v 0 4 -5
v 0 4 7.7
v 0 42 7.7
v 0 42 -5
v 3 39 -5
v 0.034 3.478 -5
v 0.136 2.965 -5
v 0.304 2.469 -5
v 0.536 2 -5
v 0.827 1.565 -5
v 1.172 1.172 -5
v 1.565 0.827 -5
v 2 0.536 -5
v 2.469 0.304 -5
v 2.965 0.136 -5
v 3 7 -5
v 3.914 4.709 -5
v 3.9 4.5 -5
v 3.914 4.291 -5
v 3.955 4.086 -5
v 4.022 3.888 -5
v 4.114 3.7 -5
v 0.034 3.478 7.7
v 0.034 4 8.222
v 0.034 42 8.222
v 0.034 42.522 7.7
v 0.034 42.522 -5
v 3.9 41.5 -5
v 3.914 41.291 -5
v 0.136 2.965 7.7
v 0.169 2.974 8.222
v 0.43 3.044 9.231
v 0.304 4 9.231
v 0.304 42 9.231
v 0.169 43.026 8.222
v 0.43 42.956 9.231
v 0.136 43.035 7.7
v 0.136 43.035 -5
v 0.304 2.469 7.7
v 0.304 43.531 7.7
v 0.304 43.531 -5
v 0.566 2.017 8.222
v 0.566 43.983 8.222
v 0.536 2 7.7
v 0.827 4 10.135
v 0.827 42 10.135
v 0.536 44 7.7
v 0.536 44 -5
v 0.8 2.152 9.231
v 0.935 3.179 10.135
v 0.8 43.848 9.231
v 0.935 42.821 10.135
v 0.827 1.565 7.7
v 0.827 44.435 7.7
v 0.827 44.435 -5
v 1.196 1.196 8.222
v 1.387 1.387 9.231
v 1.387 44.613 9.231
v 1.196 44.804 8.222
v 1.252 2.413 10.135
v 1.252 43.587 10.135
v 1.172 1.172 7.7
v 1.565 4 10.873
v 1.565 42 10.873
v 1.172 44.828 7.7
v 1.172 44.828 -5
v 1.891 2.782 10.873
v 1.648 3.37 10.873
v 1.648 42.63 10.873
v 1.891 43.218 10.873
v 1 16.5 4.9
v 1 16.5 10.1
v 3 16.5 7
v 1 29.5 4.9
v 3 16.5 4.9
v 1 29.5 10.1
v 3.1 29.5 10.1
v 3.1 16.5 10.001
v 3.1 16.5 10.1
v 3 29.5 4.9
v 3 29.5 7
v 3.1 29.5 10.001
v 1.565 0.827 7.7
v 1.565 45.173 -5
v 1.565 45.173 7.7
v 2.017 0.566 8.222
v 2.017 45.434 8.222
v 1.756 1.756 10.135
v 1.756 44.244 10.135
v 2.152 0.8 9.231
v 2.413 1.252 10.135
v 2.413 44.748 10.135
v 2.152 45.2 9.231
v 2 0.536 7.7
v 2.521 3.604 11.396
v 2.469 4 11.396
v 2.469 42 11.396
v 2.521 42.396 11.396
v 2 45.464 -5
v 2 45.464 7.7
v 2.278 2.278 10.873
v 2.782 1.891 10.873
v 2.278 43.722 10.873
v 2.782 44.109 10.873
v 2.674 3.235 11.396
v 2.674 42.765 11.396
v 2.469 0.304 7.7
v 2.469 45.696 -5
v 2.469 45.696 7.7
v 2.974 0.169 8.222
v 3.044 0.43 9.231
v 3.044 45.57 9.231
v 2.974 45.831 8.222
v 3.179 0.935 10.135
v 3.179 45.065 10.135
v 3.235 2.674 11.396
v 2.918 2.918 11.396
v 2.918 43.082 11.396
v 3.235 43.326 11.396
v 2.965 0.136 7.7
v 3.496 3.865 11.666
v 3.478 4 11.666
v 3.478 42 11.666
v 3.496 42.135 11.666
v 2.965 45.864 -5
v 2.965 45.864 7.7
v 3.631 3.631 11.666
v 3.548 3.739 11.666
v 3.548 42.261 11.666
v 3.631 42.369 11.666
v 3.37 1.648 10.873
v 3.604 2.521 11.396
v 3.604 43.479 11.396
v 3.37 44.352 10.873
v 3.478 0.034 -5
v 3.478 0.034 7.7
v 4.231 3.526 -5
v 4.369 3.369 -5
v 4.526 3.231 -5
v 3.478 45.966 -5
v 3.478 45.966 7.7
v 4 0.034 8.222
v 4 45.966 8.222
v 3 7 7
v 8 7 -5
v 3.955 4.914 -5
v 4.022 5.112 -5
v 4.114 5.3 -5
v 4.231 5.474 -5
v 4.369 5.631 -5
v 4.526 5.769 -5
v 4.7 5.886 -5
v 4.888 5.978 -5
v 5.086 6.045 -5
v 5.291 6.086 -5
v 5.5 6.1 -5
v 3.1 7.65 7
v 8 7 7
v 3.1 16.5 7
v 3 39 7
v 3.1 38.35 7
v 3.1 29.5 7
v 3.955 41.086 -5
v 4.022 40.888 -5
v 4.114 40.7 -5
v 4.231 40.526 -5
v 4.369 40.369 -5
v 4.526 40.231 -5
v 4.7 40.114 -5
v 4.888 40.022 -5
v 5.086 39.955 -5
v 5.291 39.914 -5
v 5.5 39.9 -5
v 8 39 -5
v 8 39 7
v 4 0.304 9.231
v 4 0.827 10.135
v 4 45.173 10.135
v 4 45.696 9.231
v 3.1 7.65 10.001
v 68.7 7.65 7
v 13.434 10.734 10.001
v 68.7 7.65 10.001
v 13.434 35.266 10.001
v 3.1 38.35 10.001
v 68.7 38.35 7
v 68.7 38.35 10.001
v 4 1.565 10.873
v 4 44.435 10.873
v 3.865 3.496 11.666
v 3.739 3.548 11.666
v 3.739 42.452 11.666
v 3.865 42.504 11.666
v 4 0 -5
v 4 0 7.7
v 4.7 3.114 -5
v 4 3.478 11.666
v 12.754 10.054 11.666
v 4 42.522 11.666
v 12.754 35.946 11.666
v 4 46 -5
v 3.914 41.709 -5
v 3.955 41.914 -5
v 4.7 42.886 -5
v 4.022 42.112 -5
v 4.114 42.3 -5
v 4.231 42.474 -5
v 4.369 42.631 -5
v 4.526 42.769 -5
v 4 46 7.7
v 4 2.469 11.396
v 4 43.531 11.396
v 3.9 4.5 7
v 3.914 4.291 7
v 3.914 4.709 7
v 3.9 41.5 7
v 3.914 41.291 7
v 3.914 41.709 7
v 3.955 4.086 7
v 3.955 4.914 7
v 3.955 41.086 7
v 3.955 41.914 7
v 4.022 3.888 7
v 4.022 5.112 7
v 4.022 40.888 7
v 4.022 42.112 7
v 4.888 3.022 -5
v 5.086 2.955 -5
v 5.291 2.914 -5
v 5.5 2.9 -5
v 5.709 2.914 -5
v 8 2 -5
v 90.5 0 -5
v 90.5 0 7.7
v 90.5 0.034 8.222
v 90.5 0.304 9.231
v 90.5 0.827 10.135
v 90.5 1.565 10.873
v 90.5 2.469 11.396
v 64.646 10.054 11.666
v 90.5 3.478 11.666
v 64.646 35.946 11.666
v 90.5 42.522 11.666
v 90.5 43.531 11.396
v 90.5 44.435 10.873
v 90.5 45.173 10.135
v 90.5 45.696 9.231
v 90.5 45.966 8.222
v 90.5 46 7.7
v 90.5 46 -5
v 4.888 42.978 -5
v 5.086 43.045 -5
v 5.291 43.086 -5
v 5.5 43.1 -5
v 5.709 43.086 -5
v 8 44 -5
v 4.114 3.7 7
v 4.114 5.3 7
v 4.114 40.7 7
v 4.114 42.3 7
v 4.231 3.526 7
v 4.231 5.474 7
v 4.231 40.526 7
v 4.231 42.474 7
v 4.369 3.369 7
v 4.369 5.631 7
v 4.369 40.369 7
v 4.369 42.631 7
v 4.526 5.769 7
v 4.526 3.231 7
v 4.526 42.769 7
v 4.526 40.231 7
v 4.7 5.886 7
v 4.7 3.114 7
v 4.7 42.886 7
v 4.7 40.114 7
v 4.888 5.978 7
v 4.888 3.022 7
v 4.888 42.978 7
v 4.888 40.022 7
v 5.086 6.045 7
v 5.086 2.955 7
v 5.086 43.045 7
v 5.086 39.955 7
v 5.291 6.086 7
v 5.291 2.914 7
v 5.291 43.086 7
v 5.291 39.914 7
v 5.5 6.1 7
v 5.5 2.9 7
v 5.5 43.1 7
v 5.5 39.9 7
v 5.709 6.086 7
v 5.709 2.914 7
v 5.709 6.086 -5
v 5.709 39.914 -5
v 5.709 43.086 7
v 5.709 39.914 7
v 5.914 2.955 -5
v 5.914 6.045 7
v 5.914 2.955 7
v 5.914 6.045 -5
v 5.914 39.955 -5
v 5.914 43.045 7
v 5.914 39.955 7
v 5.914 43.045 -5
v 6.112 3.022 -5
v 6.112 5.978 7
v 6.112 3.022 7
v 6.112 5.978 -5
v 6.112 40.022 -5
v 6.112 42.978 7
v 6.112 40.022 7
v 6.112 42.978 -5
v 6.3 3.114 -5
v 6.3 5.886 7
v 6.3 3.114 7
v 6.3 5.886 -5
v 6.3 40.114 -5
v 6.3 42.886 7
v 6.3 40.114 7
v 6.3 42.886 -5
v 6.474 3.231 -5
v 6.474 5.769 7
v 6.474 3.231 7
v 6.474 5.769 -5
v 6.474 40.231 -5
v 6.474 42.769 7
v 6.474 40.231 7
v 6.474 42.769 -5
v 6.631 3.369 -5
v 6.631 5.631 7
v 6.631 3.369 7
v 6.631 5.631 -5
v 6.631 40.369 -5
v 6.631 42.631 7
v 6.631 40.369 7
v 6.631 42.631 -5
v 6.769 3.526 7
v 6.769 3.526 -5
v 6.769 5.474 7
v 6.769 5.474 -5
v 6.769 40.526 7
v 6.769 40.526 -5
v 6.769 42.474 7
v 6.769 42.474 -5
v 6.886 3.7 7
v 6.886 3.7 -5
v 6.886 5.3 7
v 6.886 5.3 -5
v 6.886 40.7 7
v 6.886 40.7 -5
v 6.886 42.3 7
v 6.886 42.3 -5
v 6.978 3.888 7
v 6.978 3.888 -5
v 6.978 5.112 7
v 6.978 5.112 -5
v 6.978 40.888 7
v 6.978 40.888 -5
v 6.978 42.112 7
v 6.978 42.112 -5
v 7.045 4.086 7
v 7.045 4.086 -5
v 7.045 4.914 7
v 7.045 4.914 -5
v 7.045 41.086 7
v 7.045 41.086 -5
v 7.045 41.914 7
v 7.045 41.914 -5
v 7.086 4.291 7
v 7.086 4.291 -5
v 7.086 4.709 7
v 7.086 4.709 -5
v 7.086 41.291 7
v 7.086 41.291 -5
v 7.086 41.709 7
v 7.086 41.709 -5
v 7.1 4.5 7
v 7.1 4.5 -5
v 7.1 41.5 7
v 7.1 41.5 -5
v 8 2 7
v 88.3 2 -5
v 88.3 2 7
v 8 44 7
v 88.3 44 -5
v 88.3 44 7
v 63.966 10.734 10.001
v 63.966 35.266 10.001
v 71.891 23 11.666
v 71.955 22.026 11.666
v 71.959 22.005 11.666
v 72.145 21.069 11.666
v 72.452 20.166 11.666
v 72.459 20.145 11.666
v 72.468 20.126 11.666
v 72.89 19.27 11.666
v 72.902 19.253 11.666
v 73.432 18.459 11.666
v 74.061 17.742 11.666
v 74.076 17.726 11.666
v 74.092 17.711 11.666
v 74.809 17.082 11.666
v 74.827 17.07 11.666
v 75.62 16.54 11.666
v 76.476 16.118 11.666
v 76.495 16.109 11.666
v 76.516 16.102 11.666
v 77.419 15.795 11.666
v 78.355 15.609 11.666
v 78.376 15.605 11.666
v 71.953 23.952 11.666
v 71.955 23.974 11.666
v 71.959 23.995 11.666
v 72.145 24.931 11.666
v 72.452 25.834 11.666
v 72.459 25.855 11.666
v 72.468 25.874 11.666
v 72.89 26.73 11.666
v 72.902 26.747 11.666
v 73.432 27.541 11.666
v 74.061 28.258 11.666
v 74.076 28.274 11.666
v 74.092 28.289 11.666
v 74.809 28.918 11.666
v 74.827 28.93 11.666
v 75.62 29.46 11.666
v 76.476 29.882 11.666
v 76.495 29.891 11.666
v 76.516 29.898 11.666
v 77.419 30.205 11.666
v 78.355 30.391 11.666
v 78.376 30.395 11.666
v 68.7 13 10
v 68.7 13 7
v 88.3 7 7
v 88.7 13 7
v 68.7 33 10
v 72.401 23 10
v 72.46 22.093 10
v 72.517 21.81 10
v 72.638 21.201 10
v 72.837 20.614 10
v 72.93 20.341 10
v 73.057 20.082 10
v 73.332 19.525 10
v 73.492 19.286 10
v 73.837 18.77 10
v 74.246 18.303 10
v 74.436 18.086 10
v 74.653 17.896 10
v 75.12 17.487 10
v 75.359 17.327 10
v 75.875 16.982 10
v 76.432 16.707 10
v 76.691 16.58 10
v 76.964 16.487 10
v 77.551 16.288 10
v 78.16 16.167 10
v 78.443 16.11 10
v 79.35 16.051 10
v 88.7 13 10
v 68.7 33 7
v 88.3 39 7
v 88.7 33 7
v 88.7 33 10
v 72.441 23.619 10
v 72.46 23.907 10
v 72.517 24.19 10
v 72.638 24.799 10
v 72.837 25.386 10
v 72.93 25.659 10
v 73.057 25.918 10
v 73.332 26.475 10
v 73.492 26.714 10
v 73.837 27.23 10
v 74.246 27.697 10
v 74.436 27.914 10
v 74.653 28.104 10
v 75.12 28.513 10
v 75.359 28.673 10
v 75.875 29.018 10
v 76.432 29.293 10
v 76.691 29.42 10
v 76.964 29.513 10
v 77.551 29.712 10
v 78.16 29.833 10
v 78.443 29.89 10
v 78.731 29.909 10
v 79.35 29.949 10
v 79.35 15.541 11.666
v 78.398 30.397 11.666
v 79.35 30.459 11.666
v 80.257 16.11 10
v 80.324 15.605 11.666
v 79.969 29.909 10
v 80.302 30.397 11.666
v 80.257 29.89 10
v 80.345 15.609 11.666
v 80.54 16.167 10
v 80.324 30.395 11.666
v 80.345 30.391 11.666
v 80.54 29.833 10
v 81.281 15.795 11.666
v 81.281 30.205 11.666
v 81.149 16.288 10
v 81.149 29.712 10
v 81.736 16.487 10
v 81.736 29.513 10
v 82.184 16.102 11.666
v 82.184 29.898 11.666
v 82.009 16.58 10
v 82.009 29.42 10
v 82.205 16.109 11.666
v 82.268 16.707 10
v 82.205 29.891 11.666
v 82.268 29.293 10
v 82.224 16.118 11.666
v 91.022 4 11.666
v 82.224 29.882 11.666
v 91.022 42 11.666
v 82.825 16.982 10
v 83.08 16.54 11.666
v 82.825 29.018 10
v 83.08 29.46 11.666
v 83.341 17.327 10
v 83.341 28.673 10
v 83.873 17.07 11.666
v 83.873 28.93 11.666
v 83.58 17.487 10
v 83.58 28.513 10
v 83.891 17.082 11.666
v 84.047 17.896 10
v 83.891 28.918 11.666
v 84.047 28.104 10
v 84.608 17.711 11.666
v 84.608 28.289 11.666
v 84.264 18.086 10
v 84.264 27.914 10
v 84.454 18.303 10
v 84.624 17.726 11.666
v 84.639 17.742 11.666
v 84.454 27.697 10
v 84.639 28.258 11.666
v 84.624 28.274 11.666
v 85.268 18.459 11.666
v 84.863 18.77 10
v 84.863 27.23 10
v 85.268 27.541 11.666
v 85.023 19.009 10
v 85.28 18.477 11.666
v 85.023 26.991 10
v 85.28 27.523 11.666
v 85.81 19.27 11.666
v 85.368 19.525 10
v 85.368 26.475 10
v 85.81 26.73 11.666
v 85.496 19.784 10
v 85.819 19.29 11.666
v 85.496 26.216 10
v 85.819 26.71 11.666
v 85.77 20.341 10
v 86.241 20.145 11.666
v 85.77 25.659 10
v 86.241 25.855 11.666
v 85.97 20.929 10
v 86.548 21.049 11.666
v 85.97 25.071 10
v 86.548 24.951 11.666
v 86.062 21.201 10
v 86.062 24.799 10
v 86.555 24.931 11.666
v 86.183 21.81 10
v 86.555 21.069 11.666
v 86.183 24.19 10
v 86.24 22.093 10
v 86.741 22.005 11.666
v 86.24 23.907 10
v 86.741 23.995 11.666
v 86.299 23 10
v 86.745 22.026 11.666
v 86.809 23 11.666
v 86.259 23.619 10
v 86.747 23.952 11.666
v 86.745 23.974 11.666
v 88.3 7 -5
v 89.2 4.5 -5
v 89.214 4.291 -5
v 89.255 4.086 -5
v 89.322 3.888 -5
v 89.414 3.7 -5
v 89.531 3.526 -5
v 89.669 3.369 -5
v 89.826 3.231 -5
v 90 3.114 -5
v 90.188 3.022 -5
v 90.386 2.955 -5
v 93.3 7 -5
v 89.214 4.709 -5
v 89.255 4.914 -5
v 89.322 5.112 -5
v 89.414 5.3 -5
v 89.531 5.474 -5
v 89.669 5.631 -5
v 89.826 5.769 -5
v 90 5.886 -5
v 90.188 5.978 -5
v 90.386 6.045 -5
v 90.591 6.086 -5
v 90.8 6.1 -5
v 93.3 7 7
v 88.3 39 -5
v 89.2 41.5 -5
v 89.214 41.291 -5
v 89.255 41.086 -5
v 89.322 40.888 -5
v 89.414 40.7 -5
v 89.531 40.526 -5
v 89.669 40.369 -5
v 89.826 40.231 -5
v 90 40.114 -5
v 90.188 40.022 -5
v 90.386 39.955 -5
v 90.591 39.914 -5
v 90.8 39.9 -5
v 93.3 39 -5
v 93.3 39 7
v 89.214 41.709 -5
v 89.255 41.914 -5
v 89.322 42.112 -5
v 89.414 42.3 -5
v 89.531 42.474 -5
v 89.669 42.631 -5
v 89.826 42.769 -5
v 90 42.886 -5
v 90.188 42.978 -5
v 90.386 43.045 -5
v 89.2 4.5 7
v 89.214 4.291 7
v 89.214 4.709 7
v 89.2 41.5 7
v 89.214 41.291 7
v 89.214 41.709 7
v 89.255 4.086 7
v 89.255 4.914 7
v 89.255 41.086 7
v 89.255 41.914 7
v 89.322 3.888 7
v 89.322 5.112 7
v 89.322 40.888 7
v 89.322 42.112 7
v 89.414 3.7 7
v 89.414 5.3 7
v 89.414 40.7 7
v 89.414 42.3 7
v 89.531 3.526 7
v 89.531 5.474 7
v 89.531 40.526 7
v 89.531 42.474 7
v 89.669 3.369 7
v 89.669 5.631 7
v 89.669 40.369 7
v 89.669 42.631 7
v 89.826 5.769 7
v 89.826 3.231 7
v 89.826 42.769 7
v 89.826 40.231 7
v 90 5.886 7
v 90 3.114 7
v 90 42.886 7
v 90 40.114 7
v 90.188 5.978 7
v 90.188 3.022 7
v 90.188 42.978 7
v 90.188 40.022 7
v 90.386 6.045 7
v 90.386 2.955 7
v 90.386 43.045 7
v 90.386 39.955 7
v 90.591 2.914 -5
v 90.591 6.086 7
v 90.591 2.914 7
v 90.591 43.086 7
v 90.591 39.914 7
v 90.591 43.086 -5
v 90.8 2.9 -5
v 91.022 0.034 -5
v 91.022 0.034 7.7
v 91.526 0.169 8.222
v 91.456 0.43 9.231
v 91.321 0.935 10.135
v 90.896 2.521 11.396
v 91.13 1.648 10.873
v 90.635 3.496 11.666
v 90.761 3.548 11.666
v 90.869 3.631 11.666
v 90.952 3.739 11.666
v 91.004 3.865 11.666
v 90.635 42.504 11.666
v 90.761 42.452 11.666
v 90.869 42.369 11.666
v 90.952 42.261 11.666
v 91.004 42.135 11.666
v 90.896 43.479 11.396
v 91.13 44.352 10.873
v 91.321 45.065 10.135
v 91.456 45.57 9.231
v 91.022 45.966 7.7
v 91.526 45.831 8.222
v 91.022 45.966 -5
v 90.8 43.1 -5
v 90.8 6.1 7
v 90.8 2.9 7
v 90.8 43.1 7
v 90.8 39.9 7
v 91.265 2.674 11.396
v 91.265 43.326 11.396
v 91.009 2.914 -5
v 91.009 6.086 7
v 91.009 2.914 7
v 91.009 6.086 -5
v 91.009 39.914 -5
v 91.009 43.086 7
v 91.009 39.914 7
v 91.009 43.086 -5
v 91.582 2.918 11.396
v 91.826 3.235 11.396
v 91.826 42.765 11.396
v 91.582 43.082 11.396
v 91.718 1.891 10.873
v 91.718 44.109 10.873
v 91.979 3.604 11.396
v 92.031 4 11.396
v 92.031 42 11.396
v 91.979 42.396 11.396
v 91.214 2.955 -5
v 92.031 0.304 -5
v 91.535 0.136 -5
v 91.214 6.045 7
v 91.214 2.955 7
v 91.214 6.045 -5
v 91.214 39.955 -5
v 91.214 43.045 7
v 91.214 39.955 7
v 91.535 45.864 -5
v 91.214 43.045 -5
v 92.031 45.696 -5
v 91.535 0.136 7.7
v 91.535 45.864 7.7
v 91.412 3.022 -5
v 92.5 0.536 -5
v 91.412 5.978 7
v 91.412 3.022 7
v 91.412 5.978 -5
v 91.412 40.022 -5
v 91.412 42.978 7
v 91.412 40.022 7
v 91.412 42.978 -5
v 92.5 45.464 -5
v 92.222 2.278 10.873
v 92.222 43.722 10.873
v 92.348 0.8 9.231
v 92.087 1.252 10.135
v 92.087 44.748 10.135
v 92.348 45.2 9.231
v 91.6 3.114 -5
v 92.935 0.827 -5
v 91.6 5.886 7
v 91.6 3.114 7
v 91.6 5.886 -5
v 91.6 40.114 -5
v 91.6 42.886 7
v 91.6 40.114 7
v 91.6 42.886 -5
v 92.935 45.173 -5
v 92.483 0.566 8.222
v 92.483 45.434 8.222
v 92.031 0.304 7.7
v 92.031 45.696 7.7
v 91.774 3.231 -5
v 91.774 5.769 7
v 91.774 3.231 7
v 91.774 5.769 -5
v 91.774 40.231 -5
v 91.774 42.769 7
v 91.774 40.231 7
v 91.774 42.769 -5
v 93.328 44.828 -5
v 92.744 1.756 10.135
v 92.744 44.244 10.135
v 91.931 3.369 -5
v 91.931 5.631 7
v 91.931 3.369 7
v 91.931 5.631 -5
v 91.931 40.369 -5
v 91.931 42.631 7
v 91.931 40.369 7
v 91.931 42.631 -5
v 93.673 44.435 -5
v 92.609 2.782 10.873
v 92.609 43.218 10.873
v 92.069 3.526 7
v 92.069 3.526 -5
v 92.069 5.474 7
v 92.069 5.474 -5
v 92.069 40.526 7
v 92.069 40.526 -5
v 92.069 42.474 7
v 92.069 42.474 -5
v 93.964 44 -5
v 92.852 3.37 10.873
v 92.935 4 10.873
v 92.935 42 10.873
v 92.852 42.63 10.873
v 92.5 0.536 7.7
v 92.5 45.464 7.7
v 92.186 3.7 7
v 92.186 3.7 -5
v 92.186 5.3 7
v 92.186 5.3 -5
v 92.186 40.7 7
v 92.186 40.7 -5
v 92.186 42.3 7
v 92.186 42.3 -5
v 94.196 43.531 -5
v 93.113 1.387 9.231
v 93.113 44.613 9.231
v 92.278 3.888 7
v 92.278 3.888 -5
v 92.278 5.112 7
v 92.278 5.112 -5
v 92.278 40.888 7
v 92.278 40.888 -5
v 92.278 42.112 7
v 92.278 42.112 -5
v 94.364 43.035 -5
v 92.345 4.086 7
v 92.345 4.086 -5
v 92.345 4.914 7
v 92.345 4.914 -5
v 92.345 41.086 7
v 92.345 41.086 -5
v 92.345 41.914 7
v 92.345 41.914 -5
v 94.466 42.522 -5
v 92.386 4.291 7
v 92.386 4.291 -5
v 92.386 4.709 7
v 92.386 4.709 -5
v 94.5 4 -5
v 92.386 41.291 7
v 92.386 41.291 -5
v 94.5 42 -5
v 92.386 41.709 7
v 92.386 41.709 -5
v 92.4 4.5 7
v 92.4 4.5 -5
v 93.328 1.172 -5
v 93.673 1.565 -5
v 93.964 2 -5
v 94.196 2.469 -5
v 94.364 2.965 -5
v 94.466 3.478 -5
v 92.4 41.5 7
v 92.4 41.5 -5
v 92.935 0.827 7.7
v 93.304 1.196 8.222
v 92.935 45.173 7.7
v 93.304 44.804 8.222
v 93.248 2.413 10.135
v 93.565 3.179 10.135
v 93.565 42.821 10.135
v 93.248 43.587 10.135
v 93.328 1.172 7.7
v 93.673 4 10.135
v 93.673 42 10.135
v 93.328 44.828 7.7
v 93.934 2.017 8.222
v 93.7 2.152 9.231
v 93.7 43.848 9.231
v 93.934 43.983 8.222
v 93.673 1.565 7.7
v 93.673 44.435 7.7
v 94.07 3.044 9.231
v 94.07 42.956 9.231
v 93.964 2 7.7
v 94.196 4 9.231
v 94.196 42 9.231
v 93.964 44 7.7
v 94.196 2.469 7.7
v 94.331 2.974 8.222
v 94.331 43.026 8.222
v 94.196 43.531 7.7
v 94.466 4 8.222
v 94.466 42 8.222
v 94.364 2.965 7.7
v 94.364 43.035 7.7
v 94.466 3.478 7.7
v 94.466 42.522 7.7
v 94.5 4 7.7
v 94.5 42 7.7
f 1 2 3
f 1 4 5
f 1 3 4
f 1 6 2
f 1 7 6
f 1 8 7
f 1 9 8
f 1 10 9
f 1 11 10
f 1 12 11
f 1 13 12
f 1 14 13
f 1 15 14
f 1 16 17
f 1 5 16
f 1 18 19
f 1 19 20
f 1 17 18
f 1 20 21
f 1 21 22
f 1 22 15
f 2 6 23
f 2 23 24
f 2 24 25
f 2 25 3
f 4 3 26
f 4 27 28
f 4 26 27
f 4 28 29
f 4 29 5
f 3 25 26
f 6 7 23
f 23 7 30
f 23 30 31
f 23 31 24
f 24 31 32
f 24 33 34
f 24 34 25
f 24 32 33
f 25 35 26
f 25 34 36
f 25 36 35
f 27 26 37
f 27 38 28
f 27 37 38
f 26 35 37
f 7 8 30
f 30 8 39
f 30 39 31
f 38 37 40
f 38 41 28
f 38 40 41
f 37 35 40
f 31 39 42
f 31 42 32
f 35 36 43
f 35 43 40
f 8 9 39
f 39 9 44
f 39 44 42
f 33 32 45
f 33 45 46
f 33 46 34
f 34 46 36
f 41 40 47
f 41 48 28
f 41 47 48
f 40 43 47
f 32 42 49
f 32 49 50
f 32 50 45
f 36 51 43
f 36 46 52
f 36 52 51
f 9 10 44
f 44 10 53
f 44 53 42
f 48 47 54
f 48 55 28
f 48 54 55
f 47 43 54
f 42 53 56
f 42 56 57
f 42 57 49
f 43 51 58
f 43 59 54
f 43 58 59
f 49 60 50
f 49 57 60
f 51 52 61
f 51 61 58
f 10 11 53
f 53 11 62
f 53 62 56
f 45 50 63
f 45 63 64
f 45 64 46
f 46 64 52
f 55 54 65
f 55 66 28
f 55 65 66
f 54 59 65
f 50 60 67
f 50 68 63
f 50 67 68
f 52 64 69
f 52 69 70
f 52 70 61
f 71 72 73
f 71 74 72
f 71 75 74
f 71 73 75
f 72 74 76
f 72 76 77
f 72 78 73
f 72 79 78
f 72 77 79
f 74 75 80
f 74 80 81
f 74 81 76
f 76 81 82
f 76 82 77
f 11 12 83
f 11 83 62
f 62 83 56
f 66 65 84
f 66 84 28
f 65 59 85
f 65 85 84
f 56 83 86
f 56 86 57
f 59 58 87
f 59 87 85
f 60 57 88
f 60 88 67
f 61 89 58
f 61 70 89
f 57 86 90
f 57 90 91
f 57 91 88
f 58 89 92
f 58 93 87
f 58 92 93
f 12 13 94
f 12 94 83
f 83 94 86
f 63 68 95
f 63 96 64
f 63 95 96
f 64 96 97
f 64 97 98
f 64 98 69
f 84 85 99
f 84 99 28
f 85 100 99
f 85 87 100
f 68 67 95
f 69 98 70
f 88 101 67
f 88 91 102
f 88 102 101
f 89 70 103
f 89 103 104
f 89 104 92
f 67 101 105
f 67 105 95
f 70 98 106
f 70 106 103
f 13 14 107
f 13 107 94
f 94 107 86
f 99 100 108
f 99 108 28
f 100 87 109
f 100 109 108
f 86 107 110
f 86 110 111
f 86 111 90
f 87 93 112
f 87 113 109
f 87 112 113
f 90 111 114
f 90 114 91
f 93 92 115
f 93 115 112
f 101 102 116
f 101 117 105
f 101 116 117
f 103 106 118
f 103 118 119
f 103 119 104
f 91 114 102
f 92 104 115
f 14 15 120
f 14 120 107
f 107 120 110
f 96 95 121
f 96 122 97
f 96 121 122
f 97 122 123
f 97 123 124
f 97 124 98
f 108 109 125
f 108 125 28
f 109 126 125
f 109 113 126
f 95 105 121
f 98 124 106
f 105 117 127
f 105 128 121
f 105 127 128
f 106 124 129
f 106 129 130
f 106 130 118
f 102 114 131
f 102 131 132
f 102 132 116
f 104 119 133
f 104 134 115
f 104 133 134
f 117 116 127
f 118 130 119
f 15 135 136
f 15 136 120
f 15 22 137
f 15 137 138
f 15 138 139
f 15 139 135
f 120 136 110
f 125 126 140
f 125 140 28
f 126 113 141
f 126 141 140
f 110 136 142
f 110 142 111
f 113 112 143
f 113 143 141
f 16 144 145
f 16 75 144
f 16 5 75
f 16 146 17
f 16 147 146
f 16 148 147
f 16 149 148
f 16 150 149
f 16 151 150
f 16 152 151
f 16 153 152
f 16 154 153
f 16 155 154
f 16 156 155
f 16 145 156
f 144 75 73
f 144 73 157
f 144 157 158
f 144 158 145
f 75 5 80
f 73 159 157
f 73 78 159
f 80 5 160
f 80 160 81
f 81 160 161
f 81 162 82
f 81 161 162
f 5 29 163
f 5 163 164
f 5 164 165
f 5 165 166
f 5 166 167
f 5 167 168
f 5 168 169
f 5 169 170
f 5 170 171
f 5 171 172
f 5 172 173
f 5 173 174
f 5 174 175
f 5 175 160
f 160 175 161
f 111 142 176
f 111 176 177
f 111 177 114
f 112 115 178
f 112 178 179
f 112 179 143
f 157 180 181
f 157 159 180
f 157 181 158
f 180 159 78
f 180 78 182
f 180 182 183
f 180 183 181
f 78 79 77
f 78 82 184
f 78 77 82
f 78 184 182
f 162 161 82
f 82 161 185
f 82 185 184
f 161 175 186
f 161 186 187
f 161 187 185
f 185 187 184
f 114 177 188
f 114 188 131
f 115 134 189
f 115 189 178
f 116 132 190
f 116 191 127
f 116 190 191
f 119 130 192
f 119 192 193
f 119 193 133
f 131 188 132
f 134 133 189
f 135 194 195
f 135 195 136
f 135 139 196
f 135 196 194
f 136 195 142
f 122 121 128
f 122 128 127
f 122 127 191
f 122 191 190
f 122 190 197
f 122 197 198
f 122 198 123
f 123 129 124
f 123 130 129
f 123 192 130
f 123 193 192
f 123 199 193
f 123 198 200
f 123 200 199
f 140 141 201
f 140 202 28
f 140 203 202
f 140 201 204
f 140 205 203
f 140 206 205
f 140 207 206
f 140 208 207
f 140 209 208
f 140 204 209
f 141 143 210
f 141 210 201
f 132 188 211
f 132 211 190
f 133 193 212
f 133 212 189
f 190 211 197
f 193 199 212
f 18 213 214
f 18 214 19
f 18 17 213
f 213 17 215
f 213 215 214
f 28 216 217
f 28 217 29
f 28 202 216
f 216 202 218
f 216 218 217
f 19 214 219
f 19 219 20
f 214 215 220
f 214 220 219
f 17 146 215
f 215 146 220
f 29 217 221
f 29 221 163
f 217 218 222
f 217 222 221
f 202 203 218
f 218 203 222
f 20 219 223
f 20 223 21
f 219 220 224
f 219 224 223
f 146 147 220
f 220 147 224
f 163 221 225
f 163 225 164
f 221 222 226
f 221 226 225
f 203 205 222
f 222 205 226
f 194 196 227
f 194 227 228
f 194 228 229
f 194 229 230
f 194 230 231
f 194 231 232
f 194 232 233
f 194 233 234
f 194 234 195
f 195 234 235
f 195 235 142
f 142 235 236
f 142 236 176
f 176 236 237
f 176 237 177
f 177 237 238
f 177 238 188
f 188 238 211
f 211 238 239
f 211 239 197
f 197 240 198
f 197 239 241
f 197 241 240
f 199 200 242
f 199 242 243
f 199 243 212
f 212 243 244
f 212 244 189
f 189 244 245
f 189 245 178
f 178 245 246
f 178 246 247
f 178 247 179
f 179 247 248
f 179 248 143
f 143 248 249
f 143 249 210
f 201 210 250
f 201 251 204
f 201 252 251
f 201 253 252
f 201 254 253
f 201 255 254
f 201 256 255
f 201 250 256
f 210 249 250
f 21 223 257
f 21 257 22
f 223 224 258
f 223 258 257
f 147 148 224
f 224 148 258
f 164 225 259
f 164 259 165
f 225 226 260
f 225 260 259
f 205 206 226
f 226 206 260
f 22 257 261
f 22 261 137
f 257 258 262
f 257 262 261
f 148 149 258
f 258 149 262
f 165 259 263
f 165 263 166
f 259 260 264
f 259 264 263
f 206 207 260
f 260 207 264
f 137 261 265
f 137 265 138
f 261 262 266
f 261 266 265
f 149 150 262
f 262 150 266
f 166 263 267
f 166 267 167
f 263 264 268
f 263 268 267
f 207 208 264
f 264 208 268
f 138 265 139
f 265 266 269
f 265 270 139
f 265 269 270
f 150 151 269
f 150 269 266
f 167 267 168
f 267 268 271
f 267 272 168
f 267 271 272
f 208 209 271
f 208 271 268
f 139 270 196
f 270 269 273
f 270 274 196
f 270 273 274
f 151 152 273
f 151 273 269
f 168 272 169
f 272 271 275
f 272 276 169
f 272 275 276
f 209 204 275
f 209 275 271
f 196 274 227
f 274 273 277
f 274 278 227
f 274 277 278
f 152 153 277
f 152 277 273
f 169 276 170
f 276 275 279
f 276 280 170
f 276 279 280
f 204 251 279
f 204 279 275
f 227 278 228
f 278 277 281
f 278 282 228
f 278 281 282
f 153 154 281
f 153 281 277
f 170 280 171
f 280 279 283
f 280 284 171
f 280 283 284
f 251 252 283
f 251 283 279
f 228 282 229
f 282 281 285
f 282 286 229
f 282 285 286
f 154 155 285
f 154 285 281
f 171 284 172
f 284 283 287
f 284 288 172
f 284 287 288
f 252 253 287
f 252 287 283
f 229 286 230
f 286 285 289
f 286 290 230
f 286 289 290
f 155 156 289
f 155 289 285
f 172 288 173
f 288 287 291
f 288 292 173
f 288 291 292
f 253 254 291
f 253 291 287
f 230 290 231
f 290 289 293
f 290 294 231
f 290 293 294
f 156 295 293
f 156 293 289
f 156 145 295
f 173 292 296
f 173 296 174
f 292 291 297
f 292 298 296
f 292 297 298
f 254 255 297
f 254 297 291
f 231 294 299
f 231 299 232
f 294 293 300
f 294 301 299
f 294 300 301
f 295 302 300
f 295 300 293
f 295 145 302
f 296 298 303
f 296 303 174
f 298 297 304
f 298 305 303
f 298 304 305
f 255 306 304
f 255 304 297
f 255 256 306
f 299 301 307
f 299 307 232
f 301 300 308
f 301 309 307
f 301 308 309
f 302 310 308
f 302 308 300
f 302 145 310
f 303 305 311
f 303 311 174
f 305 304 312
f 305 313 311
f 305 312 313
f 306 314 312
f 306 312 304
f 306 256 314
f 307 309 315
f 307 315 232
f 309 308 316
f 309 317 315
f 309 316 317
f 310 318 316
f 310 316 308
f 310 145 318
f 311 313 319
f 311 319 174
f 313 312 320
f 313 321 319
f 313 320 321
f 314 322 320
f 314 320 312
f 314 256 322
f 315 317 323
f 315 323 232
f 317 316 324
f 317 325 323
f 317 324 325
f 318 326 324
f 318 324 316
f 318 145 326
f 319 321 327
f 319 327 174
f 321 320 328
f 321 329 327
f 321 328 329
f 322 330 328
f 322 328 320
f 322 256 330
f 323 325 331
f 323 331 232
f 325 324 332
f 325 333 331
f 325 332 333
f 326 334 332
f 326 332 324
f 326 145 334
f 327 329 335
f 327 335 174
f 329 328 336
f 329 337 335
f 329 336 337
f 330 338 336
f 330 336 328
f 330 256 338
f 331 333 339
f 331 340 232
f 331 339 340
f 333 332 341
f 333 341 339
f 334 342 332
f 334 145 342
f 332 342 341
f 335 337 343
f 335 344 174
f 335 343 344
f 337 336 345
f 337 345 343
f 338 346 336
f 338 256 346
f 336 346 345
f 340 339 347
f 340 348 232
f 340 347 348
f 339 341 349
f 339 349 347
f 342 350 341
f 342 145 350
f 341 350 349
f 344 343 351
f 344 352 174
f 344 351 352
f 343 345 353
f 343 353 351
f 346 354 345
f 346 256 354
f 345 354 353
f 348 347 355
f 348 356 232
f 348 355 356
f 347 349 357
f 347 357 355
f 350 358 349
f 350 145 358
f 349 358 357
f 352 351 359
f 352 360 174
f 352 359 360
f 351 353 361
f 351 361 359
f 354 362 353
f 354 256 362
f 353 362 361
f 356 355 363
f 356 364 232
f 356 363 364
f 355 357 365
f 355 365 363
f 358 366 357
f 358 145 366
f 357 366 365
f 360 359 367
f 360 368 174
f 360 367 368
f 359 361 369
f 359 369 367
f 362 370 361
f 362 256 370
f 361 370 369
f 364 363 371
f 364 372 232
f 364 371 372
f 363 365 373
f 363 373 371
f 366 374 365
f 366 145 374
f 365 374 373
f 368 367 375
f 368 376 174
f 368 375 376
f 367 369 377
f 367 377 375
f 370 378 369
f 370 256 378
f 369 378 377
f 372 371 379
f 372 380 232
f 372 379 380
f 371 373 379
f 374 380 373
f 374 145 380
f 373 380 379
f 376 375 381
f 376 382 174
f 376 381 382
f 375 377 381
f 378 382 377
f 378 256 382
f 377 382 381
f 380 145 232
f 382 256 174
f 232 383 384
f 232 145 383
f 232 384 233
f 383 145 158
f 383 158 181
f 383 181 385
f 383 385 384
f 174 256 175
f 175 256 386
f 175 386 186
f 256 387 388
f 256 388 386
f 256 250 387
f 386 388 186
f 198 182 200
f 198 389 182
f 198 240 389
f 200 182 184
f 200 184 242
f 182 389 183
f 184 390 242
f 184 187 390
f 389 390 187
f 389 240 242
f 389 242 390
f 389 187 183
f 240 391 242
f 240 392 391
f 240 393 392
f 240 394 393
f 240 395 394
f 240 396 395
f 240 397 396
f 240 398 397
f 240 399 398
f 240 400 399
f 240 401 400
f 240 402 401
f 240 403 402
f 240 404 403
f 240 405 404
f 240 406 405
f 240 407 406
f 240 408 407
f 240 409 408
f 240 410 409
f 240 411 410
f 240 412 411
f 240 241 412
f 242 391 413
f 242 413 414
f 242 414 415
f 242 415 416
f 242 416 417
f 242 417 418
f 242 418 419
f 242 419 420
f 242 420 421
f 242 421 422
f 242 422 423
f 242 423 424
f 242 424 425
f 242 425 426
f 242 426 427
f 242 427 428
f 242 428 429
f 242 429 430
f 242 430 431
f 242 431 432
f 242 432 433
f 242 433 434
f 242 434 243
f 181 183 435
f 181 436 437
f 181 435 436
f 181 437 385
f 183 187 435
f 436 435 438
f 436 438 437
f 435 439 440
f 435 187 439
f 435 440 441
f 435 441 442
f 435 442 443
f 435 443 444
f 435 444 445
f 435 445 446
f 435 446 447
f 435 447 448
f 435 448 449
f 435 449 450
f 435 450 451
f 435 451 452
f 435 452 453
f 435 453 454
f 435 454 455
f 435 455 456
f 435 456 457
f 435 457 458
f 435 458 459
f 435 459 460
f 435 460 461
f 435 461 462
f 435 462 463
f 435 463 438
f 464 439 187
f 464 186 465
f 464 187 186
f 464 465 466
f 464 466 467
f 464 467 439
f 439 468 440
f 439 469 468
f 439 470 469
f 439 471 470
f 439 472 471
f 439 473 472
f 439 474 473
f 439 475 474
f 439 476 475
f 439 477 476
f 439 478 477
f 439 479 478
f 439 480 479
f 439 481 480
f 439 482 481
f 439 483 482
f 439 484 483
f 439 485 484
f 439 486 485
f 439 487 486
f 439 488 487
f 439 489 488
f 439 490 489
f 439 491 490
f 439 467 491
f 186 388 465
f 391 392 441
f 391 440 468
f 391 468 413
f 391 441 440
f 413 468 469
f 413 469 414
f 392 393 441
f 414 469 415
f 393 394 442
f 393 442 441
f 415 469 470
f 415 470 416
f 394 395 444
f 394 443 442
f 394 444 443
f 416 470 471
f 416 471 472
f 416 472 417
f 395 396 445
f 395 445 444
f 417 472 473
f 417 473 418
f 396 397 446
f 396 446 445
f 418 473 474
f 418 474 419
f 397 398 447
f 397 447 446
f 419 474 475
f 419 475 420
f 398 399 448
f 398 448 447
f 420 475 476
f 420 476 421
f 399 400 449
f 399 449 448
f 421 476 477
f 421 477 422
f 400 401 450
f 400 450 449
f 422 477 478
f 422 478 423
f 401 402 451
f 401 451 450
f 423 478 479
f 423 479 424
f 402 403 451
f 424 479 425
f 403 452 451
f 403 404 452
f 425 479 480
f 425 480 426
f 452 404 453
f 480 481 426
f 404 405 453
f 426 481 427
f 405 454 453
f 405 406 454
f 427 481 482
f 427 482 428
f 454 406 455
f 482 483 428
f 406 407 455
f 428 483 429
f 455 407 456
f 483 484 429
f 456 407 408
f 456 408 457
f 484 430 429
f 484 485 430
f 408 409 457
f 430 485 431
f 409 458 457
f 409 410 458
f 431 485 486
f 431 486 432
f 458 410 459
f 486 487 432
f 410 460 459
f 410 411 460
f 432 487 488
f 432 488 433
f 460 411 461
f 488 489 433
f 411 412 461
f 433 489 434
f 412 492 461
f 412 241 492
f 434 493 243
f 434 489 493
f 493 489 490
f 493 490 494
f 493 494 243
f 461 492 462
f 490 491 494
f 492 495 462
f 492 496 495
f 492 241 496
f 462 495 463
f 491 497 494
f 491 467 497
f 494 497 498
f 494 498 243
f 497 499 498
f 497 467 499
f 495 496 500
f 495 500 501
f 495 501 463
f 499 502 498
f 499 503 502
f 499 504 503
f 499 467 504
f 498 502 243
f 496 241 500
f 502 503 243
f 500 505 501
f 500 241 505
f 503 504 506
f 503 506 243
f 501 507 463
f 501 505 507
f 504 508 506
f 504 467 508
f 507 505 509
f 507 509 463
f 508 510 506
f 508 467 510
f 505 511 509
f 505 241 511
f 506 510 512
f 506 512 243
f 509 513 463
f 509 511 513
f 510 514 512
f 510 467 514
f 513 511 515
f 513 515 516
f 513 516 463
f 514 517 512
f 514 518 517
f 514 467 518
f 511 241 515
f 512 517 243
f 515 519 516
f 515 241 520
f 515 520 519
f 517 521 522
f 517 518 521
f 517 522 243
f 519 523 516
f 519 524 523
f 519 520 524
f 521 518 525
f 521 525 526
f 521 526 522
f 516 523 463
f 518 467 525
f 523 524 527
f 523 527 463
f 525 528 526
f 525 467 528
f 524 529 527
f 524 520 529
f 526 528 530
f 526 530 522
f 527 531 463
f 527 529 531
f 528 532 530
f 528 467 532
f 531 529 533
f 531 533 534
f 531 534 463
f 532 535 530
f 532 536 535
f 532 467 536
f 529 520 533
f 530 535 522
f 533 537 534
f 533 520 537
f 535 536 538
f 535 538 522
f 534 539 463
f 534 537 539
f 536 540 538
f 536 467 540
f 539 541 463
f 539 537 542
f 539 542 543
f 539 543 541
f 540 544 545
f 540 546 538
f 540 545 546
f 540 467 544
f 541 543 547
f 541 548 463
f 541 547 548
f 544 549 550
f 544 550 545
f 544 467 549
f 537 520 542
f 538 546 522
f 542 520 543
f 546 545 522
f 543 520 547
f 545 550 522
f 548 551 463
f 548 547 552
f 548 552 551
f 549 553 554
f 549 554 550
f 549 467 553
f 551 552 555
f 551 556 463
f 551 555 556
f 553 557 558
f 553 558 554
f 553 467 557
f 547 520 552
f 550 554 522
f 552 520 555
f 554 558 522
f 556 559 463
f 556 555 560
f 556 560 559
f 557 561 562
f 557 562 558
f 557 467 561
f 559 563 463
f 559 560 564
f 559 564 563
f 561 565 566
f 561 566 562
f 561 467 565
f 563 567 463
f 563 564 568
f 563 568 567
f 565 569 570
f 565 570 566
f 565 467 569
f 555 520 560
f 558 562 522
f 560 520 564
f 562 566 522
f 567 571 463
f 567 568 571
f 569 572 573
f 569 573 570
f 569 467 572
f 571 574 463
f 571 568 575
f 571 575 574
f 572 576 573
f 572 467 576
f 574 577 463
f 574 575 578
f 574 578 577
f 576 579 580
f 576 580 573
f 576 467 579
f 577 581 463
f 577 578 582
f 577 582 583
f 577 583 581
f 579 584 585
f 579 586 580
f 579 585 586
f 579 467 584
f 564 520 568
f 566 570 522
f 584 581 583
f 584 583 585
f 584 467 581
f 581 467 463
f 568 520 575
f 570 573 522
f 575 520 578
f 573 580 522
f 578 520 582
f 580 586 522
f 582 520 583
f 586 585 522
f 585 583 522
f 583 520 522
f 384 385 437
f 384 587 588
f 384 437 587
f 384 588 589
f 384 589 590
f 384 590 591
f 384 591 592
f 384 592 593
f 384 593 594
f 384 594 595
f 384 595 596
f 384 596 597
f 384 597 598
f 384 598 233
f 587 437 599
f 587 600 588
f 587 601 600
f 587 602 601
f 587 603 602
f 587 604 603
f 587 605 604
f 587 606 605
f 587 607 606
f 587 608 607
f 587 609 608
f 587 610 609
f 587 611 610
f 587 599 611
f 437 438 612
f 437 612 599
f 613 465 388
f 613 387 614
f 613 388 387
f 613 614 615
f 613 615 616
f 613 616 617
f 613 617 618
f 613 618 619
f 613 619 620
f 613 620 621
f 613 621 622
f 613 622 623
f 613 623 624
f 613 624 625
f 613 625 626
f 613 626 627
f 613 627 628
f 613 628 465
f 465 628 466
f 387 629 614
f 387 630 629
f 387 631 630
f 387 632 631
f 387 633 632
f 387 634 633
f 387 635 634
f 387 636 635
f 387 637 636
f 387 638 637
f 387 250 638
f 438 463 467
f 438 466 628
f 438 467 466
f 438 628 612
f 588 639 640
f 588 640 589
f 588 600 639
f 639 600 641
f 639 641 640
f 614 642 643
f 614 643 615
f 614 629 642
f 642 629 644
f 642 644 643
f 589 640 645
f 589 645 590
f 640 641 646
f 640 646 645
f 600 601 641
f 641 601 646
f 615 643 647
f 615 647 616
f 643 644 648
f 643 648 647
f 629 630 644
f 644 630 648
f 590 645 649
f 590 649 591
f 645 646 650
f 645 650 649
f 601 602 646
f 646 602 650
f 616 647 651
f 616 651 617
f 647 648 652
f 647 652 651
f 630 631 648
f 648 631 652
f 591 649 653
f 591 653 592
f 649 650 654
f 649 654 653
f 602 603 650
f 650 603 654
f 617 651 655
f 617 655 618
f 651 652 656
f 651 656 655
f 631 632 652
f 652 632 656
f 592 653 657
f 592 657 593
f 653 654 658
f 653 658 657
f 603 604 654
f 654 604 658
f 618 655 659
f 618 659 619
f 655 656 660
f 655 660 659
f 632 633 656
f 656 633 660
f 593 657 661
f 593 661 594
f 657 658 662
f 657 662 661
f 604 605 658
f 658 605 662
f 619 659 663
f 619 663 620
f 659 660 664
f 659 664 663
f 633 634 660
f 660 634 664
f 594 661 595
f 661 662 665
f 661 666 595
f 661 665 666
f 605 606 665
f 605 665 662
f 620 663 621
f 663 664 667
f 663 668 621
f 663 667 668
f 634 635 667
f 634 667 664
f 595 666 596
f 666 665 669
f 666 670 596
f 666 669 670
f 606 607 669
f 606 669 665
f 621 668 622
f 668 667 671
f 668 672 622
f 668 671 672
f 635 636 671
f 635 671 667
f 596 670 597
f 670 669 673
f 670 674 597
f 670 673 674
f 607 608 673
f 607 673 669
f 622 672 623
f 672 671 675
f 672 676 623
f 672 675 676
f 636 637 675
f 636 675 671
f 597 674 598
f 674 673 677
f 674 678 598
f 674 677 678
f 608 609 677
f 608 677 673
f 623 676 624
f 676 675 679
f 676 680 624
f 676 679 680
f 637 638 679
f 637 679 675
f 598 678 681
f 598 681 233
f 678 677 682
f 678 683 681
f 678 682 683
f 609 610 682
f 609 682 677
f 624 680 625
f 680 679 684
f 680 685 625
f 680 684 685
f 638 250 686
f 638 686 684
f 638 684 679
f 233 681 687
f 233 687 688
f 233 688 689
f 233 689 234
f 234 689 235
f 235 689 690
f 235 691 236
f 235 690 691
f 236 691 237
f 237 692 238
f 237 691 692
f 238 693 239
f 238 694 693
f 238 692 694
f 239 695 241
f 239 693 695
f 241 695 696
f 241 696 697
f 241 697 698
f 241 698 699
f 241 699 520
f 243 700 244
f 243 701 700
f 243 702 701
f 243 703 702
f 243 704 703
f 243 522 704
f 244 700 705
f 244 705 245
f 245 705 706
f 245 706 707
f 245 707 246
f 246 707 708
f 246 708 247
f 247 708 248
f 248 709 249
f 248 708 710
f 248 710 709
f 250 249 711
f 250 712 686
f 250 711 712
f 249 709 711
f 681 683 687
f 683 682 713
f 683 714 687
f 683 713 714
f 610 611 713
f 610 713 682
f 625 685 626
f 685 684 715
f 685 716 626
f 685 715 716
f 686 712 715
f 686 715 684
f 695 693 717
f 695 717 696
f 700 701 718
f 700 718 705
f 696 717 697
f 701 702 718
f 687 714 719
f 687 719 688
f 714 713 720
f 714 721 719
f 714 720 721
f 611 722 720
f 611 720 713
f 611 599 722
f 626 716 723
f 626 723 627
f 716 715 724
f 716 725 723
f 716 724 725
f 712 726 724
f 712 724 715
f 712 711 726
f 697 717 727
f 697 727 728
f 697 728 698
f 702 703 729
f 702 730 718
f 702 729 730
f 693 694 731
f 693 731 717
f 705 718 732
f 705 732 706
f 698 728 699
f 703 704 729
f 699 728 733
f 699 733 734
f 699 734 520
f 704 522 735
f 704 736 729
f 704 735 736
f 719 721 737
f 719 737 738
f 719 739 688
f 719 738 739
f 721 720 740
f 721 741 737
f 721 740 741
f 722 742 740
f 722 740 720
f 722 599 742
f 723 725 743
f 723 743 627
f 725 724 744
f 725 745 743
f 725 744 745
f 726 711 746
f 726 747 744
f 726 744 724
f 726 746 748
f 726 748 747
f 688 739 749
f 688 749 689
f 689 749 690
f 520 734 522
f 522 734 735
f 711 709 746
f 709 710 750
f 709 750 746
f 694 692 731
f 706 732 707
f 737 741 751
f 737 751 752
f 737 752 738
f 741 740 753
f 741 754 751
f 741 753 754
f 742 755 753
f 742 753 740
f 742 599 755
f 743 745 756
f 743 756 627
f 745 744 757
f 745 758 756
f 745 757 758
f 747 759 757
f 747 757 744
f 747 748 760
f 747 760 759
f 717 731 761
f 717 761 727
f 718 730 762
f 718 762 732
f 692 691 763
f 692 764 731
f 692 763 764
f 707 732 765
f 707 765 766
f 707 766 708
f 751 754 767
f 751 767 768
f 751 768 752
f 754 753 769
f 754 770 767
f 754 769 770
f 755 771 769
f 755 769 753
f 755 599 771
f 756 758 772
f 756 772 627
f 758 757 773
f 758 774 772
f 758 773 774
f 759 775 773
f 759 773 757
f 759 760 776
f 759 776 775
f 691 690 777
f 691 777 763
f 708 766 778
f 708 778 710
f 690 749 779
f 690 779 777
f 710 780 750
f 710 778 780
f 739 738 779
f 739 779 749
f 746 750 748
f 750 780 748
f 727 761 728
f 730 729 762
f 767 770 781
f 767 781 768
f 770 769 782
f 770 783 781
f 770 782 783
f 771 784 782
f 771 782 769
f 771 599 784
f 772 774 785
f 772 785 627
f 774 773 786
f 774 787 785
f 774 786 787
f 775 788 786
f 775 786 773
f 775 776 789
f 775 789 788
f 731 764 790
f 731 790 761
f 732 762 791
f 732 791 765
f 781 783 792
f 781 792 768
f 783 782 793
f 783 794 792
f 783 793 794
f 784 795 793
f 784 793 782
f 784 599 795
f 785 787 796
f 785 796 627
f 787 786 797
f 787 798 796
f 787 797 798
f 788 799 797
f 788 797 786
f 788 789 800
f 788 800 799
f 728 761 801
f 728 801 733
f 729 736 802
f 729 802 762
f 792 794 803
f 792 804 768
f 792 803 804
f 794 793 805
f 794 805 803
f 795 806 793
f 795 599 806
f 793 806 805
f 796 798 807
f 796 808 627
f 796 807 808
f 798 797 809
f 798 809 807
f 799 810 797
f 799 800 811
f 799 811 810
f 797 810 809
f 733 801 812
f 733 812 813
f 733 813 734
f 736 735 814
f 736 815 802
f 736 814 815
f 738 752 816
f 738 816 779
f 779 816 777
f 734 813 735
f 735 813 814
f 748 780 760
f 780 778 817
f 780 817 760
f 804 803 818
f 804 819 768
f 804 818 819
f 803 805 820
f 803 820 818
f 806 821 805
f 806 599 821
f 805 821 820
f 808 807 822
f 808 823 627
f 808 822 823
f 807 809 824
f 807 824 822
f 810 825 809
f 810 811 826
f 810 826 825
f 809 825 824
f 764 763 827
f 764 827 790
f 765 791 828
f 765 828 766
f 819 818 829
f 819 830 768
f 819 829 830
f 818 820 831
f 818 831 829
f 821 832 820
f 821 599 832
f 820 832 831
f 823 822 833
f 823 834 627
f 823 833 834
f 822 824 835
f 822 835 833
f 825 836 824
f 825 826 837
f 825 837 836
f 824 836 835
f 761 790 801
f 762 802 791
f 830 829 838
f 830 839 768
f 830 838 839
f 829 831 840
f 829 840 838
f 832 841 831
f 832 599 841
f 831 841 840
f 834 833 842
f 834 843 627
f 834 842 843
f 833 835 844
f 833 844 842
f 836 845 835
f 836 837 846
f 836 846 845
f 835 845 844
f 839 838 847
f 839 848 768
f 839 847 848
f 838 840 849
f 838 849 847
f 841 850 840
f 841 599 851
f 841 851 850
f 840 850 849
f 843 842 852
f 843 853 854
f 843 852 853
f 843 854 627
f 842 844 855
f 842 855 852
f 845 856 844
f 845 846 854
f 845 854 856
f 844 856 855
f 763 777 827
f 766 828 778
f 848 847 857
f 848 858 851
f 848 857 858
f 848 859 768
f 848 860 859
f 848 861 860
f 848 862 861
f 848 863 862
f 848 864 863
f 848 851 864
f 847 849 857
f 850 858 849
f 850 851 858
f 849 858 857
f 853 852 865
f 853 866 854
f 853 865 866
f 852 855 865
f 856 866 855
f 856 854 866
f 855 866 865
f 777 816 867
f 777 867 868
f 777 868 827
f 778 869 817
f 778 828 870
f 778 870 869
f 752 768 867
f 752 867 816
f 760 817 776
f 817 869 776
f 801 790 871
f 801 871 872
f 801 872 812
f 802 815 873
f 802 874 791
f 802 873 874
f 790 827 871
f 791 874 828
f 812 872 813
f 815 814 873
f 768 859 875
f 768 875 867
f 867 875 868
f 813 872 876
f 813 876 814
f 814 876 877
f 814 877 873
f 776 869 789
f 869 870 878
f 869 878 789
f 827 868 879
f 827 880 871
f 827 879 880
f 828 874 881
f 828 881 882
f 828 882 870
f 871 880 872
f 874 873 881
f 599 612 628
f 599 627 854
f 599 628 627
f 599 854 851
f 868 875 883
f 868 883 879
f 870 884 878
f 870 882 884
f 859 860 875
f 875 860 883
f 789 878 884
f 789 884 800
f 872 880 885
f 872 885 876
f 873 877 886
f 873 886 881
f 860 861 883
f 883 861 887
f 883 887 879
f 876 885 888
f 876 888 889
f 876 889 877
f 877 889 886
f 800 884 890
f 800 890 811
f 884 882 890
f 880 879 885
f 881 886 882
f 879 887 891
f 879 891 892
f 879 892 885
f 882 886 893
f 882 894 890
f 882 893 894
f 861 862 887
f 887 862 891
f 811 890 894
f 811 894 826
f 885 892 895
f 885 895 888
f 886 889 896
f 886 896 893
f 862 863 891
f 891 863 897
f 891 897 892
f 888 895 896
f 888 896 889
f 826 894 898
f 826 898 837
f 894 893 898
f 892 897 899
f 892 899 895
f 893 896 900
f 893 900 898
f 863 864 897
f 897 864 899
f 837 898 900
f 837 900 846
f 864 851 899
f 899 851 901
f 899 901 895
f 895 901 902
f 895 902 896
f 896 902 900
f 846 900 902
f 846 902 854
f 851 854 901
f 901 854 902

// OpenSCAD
// Dilder Rev 2 "extended with joystick" — TOP COVER v3, 2-PIECE (no middle platform)
//
// Forked from top-cover-windowed-screen-inlay-v2-46y.scad. The only
// functional change: there's no middle platform anymore, so the 5 mm
// pedestal-protrusion reservation at the cover's bottom is removed.
// The display PCB now sits directly on the base's rim at global z = 14
// (= local cover z = 0).
//
// Local Z layout (cover-local; z = 0 is the cover's mating bottom,
// flush with the base's top rim at global z = 14):
//   0 ─────────── cover mating bottom (= base top rim)
//                  display PCB bottom rests here (and on the Pico
//                  headers below through the middle Y).
//   7 ─────────── display top (FPC fold clearance 7 mm above PCB)
//   7.7 ────────── face plate top (0.7 mm face plate)
//   11.7 ─────── bullnose top — cover total height
//
// Every Y/X feature (display inlay, viewing window, joystick, pillars)
// is identical to the v2-46y cover — just shifted down by 5 mm in cover-
// local Z because the pedestal reservation is gone.
//
// Export:
//   openscad -o top-cover-windowed-screen-inlay-v3-2piece.3mf top-cover-windowed-screen-inlay-v3-2piece.scad

$fn = 48;

// ============================================================
// Outer shell (flush with base-v3-2piece at Y=46)
// ============================================================
enclosure_outer_width_along_x_axis_mm          = 94.5;   // was 91.5 — +3 mm on -X side for TP4056
enclosure_outer_depth_along_y_axis_mm          = 46;
outer_case_top_view_corner_radius_mm           = 4;
outer_case_top_edge_bullnose_radius_mm         = 4;

// ============================================================
// Asymmetric ±X end walls — match base-v3
// ============================================================
minus_x_end_wall_thickness_mm                  = 3.0;
plus_x_end_wall_thickness_mm                   = 1.2;
perimeter_long_side_wall_thickness_y_mm_base   = 2;

// ============================================================
// Cover Z layout — NO middle-platform pedestal reservation
// ============================================================
// v2 had `middle_platform_pedestal_protrusion_into_cover_z_mm = 5` here;
// in the 2-piece design the display PCB sits directly on the base rim at
// local z = 0 (display's ±Y overhang rests on the base; its middle sits
// on the Pico W header stack below).
middle_platform_pedestal_protrusion_into_cover_z_mm = 0;

display_footprint_thickness_z_mm               = 7;
face_plate_thickness_z_mm                      = 0.7;

display_bottom_z_mm =
    middle_platform_pedestal_protrusion_into_cover_z_mm;      // = 0
display_top_z_mm =
    display_bottom_z_mm + display_footprint_thickness_z_mm;   // = 7
face_plate_bottom_z_mm                         = display_top_z_mm; // = 7
face_plate_top_z_mm =
    face_plate_bottom_z_mm + face_plate_thickness_z_mm;       // = 7.7
cover_total_height_z_mm =
    face_plate_top_z_mm + outer_case_top_edge_bullnose_radius_mm; // = 11.7
wall_extension_below_mating_mm                 = 5;       // extend walls 5 mm below z=0

// ============================================================
// Display footprint & screen inlay (unchanged from v2-46y)
// ============================================================
display_footprint_length_along_x_mm            = 65;
display_footprint_depth_along_y_mm             = 30;
print_fit_tolerance_slop_mm                    = 0.4;

display_minus_x_origin_mm =
    minus_x_end_wall_thickness_mm
      + print_fit_tolerance_slop_mm;
display_plus_x_end_mm =
    display_minus_x_origin_mm + display_footprint_length_along_x_mm;
display_y_centerline_mm =
    enclosure_outer_depth_along_y_axis_mm / 2;                // = 23
display_minus_y_origin_mm =
    display_y_centerline_mm - display_footprint_depth_along_y_mm / 2;
display_plus_y_end_mm =
    display_minus_y_origin_mm + display_footprint_depth_along_y_mm;

screen_inlay_depth_z_mm                        = 3;
screen_inlay_xy_slop_per_edge_mm               = 0.3;
screen_inlay_y_slop_per_edge_mm                = 0.35;

screen_inlay_x_start_mm =
    display_minus_x_origin_mm - screen_inlay_xy_slop_per_edge_mm;
screen_inlay_x_end_mm =
    display_plus_x_end_mm + screen_inlay_xy_slop_per_edge_mm;
screen_inlay_y_start_mm =
    display_minus_y_origin_mm - screen_inlay_y_slop_per_edge_mm;
screen_inlay_y_end_mm =
    display_plus_y_end_mm + screen_inlay_y_slop_per_edge_mm;
screen_inlay_bottom_z_mm = face_plate_bottom_z_mm;
screen_inlay_top_z_mm =
    face_plate_bottom_z_mm + screen_inlay_depth_z_mm;

// ============================================================
// FPC ribbon divet (2 mm variant, unchanged)
// ============================================================
fpc_ribbon_divet_width_along_y_mm              = 13;
fpc_ribbon_divet_wall_remaining_thickness_mm   = 1.0;
fpc_ribbon_divet_z_extend_below_inlay_mm       = 2.0;
fpc_ribbon_divet_x_start_mm =
    fpc_ribbon_divet_wall_remaining_thickness_mm;
fpc_ribbon_divet_x_end_mm =
    screen_inlay_x_start_mm;
fpc_ribbon_divet_y_start_mm =
    display_y_centerline_mm - fpc_ribbon_divet_width_along_y_mm / 2;
fpc_ribbon_divet_y_end_mm =
    fpc_ribbon_divet_y_start_mm + fpc_ribbon_divet_width_along_y_mm;
fpc_ribbon_divet_z_bottom_mm =
    screen_inlay_bottom_z_mm - fpc_ribbon_divet_z_extend_below_inlay_mm;
fpc_ribbon_divet_z_top_mm =
    screen_inlay_top_z_mm;

// ============================================================
// Display viewing window (48 × 22, shift 2.8 — unchanged from v2-46y)
// ============================================================
display_viewing_window_length_along_x_mm       = 48;
display_viewing_window_depth_along_y_mm        = 22;
display_window_shift_toward_joystick_x_mm      = 2.8;
display_window_origin_x_mm =
    display_minus_x_origin_mm
      + (display_footprint_length_along_x_mm
          - display_viewing_window_length_along_x_mm) / 2
      + display_window_shift_toward_joystick_x_mm;
display_window_origin_y_mm =
    display_minus_y_origin_mm
      + (display_footprint_depth_along_y_mm
          - display_viewing_window_depth_along_y_mm) / 2;
display_window_top_taper_width_mm              = 2.0;

// ============================================================
// Joystick through-hole (+X half, centered on display Y centerline)
// ============================================================
joystick_through_hole_diameter_mm              = 12;
// Hardcoded to keep joystick at its original position despite the
// 3 mm -X enclosure extension (was the midpoint formula below).
joystick_through_hole_center_x_mm              = 79.35;
joystick_through_hole_center_y_mm              = display_y_centerline_mm;
joystick_hole_top_taper_width_mm               = 1.5;

// ============================================================
// Joystick PCB pocket (mount bores removed — see note)
// ============================================================
joystick_pcb_pocket_width_x_mm                 = 20;
joystick_pcb_pocket_depth_y_mm                 = 20;
joystick_pcb_pocket_depth_z_mm                 = screen_inlay_depth_z_mm;

joystick_pcb_pocket_x_start_mm =
    screen_inlay_x_end_mm;
joystick_pcb_pocket_x_end_mm =
    joystick_pcb_pocket_x_start_mm + joystick_pcb_pocket_width_x_mm;
joystick_pcb_pocket_y_start_mm =
    joystick_through_hole_center_y_mm - joystick_pcb_pocket_depth_y_mm / 2;
joystick_pcb_pocket_y_end_mm =
    joystick_pcb_pocket_y_start_mm + joystick_pcb_pocket_depth_y_mm;

// ============================================================
// Corner pillars — blind M3 bores capped at face plate bottom
// ============================================================
corner_pillar_square_side_length_mm            = 5;
corner_pillar_inner_facing_corner_radius_mm    = 1;
m3_screw_clearance_hole_diameter_mm            = 3.2;
m3_bore_top_z_mm                               = face_plate_bottom_z_mm;

corner_pillar_xy_origin_positions_list = [
    [minus_x_end_wall_thickness_mm,
     perimeter_long_side_wall_thickness_y_mm_base],
    [enclosure_outer_width_along_x_axis_mm
       - plus_x_end_wall_thickness_mm
       - corner_pillar_square_side_length_mm,
     perimeter_long_side_wall_thickness_y_mm_base],
    [minus_x_end_wall_thickness_mm,
     enclosure_outer_depth_along_y_axis_mm
       - perimeter_long_side_wall_thickness_y_mm_base
       - corner_pillar_square_side_length_mm],
    [enclosure_outer_width_along_x_axis_mm
       - plus_x_end_wall_thickness_mm
       - corner_pillar_square_side_length_mm,
     enclosure_outer_depth_along_y_axis_mm
       - perimeter_long_side_wall_thickness_y_mm_base
       - corner_pillar_square_side_length_mm],
];


// ========== Helpers ==========

module pillar_one_round(w, l, h, r, round_x, round_y) {
    tiny = 0.01;
    hull() {
        for (ix = [0, 1])
            for (iy = [0, 1]) {
                cr = (ix == round_x && iy == round_y) ? r : tiny;
                translate([cr + ix * (w - 2*cr), cr + iy * (l - 2*cr), 0])
                    cylinder(r = cr, h = h, $fn = 48);
            }
    }
}

module shell_with_bullnose_top(w, l, h, case_r, top_r) {
    intersection() {
        hull() {
            for (x = [case_r, w - case_r])
                for (y = [case_r, l - case_r]) {
                    translate([x, y, 0])
                        cylinder(r = case_r, h = h - top_r, $fn = 48);
                    translate([x, y, h - top_r])
                        sphere(r = case_r, $fn = 24);
                }
        }
        translate([-1, -1, 0])
            cube([w + 2, l + 2, h]);
    }
}

module chamber_carve_preserving_pillars(origin_x, origin_y, origin_z,
                                        width_x, depth_y, height_z,
                                        pillar_xy_list, pillar_side) {
    difference() {
        translate([origin_x, origin_y, origin_z])
            cube([width_x, depth_y, height_z]);
        for (pillar_origin_xy = pillar_xy_list)
            translate([pillar_origin_xy[0], pillar_origin_xy[1], origin_z - 0.5])
                cube([pillar_side, pillar_side, height_z + 1]);
    }
}


// ========== Top cover (2-piece, 46 mm Y) ==========

module top_cover_windowed_screen_inlay_v3_2piece() {
    cavity_inner_x_start_mm = minus_x_end_wall_thickness_mm;
    cavity_inner_x_end_mm =
        enclosure_outer_width_along_x_axis_mm
          - plus_x_end_wall_thickness_mm;
    cavity_inner_y_start_mm = perimeter_long_side_wall_thickness_y_mm_base;
    cavity_inner_y_end_mm =
        enclosure_outer_depth_along_y_axis_mm
          - perimeter_long_side_wall_thickness_y_mm_base;

    difference() {
        union() {
            // Shell extended 5 mm below z=0 (the mating plane) so
            // the walls wrap further down around the base plate.
            translate([0, 0, -wall_extension_below_mating_mm])
            shell_with_bullnose_top(
                enclosure_outer_width_along_x_axis_mm,
                enclosure_outer_depth_along_y_axis_mm,
                cover_total_height_z_mm + wall_extension_below_mating_mm,
                outer_case_top_view_corner_radius_mm,
                outer_case_top_edge_bullnose_radius_mm);

            for (corner_pillar_origin_xy = corner_pillar_xy_origin_positions_list) {
                pillar_rounds_positive_x_corner =
                    (corner_pillar_origin_xy[0]
                      < enclosure_outer_width_along_x_axis_mm / 2) ? 1 : 0;
                pillar_rounds_positive_y_corner =
                    (corner_pillar_origin_xy[1]
                      < enclosure_outer_depth_along_y_axis_mm / 2) ? 1 : 0;
                translate([corner_pillar_origin_xy[0],
                           corner_pillar_origin_xy[1],
                           -wall_extension_below_mating_mm])
                    pillar_one_round(
                        corner_pillar_square_side_length_mm,
                        corner_pillar_square_side_length_mm,
                        face_plate_top_z_mm + wall_extension_below_mating_mm,
                        corner_pillar_inner_facing_corner_radius_mm,
                        pillar_rounds_positive_x_corner,
                        pillar_rounds_positive_y_corner);
            }
        }

        chamber_carve_preserving_pillars(
            cavity_inner_x_start_mm,
            cavity_inner_y_start_mm,
            -wall_extension_below_mating_mm - 0.1,
            cavity_inner_x_end_mm - cavity_inner_x_start_mm,
            cavity_inner_y_end_mm - cavity_inner_y_start_mm,
            face_plate_bottom_z_mm + wall_extension_below_mating_mm + 0.1,
            corner_pillar_xy_origin_positions_list,
            corner_pillar_square_side_length_mm);

        translate([screen_inlay_x_start_mm,
                   screen_inlay_y_start_mm,
                   screen_inlay_bottom_z_mm - 0.1])
            cube([screen_inlay_x_end_mm - screen_inlay_x_start_mm,
                  screen_inlay_y_end_mm - screen_inlay_y_start_mm,
                  (screen_inlay_top_z_mm + 0.001)
                    - (screen_inlay_bottom_z_mm - 0.1)]);

        translate([fpc_ribbon_divet_x_start_mm,
                   fpc_ribbon_divet_y_start_mm,
                   fpc_ribbon_divet_z_bottom_mm - 0.1])
            cube([fpc_ribbon_divet_x_end_mm - fpc_ribbon_divet_x_start_mm,
                  fpc_ribbon_divet_y_end_mm - fpc_ribbon_divet_y_start_mm,
                  (fpc_ribbon_divet_z_top_mm + 0.1)
                    - (fpc_ribbon_divet_z_bottom_mm - 0.1)]);

        hull() {
            translate([display_window_origin_x_mm,
                       display_window_origin_y_mm,
                       face_plate_bottom_z_mm - 0.1])
                cube([display_viewing_window_length_along_x_mm,
                      display_viewing_window_depth_along_y_mm,
                      0.001]);
            translate([display_window_origin_x_mm
                         - display_window_top_taper_width_mm,
                       display_window_origin_y_mm
                         - display_window_top_taper_width_mm,
                       cover_total_height_z_mm + 0.1 - 0.001])
                cube([display_viewing_window_length_along_x_mm
                        + 2 * display_window_top_taper_width_mm,
                      display_viewing_window_depth_along_y_mm
                        + 2 * display_window_top_taper_width_mm,
                      0.001]);
        }

        translate([joystick_through_hole_center_x_mm,
                   joystick_through_hole_center_y_mm,
                   0])
            hull() {
                translate([0, 0, face_plate_bottom_z_mm - 0.1])
                    cylinder(
                        h = 0.001,
                        d = joystick_through_hole_diameter_mm);
                translate([0, 0,
                           cover_total_height_z_mm + 0.1 - 0.001])
                    cylinder(
                        h = 0.001,
                        d = joystick_through_hole_diameter_mm
                              + 2 * joystick_hole_top_taper_width_mm);
            }

        for (corner_pillar_origin_xy = corner_pillar_xy_origin_positions_list) {
            screw_hole_center_x_mm =
                corner_pillar_origin_xy[0]
                  + corner_pillar_square_side_length_mm / 2;
            screw_hole_center_y_mm =
                corner_pillar_origin_xy[1]
                  + corner_pillar_square_side_length_mm / 2;
            translate([screw_hole_center_x_mm,
                       screw_hole_center_y_mm,
                       -wall_extension_below_mating_mm - 0.1])
                cylinder(h = m3_bore_top_z_mm + wall_extension_below_mating_mm + 0.1,
                         d = m3_screw_clearance_hole_diameter_mm);
        }

        translate([joystick_pcb_pocket_x_start_mm,
                   joystick_pcb_pocket_y_start_mm,
                   face_plate_bottom_z_mm - 0.1])
            cube([joystick_pcb_pocket_width_x_mm,
                  joystick_pcb_pocket_depth_y_mm,
                  joystick_pcb_pocket_depth_z_mm + 0.1]);

        // NOTE: joystick-PCB mount bores remain removed (kept consistent
        // with the v1-2mm / pico2-v2-2mm / v2-46y lineage). Re-add when
        // the joystick-PCB retention plan lands.

    }
}

top_cover_windowed_screen_inlay_v3_2piece();
